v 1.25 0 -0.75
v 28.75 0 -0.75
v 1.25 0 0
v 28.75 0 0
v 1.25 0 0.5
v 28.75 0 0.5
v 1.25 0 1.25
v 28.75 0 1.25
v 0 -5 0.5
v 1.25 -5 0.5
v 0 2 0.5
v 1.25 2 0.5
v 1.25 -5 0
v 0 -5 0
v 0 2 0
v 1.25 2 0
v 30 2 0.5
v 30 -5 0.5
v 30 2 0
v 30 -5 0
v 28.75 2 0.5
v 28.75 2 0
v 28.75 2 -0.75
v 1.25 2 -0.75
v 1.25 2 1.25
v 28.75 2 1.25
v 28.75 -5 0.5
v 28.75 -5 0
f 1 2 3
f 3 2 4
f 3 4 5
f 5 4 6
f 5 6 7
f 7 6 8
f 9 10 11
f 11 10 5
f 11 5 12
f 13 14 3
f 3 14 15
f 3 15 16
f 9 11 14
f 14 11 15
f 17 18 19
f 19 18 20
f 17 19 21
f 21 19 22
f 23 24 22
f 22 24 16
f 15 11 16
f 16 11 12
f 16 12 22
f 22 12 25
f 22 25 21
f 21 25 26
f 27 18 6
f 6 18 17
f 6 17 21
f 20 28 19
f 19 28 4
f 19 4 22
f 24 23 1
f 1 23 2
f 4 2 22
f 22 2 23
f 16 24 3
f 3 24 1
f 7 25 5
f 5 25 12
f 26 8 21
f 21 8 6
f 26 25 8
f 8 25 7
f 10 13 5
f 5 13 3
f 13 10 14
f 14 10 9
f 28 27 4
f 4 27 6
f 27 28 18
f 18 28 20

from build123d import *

# Parameters (mm, degrees)
SKETCH1_W                = 30
SKETCH1_H                = 2
BOSS_EXTRUDE2_DEPTH      = 0.5
SKETCH2_W                = 27.5
SKETCH2_H                = 2
BOSS_EXTRUDE4_DEPTH      = 0.75
BOSS_EXTRUDE4_DEPTH_BACK = 1.25
SKETCH3_W                = 1.25
SKETCH3_H                = 0.5
BOSS_EXTRUDE5_DEPTH      = 5
SKETCH4_W                = 1.25
SKETCH4_H                = 0.5
BOSS_EXTRUDE6_DEPTH      = 5


with BuildPart() as part:
    # Sketch1 → Boss-Extrude2 (new body)
    with BuildSketch(Plane.XY):
        with Locations((15, 1)):
            Rectangle(SKETCH1_W, SKETCH1_H)
    extrude(amount=BOSS_EXTRUDE2_DEPTH)

    # Sketch2 → Boss-Extrude4 (add, two sides)
    with BuildSketch(Plane.XY.offset(0.5)) as boss_extrude4_sk:
        with Locations((15, 1)):
            Rectangle(SKETCH2_W, SKETCH2_H)
    extrude(amount=BOSS_EXTRUDE4_DEPTH)
    extrude(boss_extrude4_sk.sketch, amount=-BOSS_EXTRUDE4_DEPTH_BACK)

    # Sketch3 → Boss-Extrude5 (add)
    with BuildSketch(Plane.XZ):
        with Locations((0.625, 0.25)):
            Rectangle(SKETCH3_W, SKETCH3_H)
    extrude(amount=BOSS_EXTRUDE5_DEPTH)

    # Sketch4 → Boss-Extrude6 (add)
    with BuildSketch(Plane(origin=(0, 0, 0), x_dir=(-1, 0, 0), z_dir=(0, -1, 0))):
        with Locations((-29.375, -0.25)):
            Rectangle(SKETCH4_W, SKETCH4_H)
    extrude(amount=BOSS_EXTRUDE6_DEPTH)


solid = part.part
